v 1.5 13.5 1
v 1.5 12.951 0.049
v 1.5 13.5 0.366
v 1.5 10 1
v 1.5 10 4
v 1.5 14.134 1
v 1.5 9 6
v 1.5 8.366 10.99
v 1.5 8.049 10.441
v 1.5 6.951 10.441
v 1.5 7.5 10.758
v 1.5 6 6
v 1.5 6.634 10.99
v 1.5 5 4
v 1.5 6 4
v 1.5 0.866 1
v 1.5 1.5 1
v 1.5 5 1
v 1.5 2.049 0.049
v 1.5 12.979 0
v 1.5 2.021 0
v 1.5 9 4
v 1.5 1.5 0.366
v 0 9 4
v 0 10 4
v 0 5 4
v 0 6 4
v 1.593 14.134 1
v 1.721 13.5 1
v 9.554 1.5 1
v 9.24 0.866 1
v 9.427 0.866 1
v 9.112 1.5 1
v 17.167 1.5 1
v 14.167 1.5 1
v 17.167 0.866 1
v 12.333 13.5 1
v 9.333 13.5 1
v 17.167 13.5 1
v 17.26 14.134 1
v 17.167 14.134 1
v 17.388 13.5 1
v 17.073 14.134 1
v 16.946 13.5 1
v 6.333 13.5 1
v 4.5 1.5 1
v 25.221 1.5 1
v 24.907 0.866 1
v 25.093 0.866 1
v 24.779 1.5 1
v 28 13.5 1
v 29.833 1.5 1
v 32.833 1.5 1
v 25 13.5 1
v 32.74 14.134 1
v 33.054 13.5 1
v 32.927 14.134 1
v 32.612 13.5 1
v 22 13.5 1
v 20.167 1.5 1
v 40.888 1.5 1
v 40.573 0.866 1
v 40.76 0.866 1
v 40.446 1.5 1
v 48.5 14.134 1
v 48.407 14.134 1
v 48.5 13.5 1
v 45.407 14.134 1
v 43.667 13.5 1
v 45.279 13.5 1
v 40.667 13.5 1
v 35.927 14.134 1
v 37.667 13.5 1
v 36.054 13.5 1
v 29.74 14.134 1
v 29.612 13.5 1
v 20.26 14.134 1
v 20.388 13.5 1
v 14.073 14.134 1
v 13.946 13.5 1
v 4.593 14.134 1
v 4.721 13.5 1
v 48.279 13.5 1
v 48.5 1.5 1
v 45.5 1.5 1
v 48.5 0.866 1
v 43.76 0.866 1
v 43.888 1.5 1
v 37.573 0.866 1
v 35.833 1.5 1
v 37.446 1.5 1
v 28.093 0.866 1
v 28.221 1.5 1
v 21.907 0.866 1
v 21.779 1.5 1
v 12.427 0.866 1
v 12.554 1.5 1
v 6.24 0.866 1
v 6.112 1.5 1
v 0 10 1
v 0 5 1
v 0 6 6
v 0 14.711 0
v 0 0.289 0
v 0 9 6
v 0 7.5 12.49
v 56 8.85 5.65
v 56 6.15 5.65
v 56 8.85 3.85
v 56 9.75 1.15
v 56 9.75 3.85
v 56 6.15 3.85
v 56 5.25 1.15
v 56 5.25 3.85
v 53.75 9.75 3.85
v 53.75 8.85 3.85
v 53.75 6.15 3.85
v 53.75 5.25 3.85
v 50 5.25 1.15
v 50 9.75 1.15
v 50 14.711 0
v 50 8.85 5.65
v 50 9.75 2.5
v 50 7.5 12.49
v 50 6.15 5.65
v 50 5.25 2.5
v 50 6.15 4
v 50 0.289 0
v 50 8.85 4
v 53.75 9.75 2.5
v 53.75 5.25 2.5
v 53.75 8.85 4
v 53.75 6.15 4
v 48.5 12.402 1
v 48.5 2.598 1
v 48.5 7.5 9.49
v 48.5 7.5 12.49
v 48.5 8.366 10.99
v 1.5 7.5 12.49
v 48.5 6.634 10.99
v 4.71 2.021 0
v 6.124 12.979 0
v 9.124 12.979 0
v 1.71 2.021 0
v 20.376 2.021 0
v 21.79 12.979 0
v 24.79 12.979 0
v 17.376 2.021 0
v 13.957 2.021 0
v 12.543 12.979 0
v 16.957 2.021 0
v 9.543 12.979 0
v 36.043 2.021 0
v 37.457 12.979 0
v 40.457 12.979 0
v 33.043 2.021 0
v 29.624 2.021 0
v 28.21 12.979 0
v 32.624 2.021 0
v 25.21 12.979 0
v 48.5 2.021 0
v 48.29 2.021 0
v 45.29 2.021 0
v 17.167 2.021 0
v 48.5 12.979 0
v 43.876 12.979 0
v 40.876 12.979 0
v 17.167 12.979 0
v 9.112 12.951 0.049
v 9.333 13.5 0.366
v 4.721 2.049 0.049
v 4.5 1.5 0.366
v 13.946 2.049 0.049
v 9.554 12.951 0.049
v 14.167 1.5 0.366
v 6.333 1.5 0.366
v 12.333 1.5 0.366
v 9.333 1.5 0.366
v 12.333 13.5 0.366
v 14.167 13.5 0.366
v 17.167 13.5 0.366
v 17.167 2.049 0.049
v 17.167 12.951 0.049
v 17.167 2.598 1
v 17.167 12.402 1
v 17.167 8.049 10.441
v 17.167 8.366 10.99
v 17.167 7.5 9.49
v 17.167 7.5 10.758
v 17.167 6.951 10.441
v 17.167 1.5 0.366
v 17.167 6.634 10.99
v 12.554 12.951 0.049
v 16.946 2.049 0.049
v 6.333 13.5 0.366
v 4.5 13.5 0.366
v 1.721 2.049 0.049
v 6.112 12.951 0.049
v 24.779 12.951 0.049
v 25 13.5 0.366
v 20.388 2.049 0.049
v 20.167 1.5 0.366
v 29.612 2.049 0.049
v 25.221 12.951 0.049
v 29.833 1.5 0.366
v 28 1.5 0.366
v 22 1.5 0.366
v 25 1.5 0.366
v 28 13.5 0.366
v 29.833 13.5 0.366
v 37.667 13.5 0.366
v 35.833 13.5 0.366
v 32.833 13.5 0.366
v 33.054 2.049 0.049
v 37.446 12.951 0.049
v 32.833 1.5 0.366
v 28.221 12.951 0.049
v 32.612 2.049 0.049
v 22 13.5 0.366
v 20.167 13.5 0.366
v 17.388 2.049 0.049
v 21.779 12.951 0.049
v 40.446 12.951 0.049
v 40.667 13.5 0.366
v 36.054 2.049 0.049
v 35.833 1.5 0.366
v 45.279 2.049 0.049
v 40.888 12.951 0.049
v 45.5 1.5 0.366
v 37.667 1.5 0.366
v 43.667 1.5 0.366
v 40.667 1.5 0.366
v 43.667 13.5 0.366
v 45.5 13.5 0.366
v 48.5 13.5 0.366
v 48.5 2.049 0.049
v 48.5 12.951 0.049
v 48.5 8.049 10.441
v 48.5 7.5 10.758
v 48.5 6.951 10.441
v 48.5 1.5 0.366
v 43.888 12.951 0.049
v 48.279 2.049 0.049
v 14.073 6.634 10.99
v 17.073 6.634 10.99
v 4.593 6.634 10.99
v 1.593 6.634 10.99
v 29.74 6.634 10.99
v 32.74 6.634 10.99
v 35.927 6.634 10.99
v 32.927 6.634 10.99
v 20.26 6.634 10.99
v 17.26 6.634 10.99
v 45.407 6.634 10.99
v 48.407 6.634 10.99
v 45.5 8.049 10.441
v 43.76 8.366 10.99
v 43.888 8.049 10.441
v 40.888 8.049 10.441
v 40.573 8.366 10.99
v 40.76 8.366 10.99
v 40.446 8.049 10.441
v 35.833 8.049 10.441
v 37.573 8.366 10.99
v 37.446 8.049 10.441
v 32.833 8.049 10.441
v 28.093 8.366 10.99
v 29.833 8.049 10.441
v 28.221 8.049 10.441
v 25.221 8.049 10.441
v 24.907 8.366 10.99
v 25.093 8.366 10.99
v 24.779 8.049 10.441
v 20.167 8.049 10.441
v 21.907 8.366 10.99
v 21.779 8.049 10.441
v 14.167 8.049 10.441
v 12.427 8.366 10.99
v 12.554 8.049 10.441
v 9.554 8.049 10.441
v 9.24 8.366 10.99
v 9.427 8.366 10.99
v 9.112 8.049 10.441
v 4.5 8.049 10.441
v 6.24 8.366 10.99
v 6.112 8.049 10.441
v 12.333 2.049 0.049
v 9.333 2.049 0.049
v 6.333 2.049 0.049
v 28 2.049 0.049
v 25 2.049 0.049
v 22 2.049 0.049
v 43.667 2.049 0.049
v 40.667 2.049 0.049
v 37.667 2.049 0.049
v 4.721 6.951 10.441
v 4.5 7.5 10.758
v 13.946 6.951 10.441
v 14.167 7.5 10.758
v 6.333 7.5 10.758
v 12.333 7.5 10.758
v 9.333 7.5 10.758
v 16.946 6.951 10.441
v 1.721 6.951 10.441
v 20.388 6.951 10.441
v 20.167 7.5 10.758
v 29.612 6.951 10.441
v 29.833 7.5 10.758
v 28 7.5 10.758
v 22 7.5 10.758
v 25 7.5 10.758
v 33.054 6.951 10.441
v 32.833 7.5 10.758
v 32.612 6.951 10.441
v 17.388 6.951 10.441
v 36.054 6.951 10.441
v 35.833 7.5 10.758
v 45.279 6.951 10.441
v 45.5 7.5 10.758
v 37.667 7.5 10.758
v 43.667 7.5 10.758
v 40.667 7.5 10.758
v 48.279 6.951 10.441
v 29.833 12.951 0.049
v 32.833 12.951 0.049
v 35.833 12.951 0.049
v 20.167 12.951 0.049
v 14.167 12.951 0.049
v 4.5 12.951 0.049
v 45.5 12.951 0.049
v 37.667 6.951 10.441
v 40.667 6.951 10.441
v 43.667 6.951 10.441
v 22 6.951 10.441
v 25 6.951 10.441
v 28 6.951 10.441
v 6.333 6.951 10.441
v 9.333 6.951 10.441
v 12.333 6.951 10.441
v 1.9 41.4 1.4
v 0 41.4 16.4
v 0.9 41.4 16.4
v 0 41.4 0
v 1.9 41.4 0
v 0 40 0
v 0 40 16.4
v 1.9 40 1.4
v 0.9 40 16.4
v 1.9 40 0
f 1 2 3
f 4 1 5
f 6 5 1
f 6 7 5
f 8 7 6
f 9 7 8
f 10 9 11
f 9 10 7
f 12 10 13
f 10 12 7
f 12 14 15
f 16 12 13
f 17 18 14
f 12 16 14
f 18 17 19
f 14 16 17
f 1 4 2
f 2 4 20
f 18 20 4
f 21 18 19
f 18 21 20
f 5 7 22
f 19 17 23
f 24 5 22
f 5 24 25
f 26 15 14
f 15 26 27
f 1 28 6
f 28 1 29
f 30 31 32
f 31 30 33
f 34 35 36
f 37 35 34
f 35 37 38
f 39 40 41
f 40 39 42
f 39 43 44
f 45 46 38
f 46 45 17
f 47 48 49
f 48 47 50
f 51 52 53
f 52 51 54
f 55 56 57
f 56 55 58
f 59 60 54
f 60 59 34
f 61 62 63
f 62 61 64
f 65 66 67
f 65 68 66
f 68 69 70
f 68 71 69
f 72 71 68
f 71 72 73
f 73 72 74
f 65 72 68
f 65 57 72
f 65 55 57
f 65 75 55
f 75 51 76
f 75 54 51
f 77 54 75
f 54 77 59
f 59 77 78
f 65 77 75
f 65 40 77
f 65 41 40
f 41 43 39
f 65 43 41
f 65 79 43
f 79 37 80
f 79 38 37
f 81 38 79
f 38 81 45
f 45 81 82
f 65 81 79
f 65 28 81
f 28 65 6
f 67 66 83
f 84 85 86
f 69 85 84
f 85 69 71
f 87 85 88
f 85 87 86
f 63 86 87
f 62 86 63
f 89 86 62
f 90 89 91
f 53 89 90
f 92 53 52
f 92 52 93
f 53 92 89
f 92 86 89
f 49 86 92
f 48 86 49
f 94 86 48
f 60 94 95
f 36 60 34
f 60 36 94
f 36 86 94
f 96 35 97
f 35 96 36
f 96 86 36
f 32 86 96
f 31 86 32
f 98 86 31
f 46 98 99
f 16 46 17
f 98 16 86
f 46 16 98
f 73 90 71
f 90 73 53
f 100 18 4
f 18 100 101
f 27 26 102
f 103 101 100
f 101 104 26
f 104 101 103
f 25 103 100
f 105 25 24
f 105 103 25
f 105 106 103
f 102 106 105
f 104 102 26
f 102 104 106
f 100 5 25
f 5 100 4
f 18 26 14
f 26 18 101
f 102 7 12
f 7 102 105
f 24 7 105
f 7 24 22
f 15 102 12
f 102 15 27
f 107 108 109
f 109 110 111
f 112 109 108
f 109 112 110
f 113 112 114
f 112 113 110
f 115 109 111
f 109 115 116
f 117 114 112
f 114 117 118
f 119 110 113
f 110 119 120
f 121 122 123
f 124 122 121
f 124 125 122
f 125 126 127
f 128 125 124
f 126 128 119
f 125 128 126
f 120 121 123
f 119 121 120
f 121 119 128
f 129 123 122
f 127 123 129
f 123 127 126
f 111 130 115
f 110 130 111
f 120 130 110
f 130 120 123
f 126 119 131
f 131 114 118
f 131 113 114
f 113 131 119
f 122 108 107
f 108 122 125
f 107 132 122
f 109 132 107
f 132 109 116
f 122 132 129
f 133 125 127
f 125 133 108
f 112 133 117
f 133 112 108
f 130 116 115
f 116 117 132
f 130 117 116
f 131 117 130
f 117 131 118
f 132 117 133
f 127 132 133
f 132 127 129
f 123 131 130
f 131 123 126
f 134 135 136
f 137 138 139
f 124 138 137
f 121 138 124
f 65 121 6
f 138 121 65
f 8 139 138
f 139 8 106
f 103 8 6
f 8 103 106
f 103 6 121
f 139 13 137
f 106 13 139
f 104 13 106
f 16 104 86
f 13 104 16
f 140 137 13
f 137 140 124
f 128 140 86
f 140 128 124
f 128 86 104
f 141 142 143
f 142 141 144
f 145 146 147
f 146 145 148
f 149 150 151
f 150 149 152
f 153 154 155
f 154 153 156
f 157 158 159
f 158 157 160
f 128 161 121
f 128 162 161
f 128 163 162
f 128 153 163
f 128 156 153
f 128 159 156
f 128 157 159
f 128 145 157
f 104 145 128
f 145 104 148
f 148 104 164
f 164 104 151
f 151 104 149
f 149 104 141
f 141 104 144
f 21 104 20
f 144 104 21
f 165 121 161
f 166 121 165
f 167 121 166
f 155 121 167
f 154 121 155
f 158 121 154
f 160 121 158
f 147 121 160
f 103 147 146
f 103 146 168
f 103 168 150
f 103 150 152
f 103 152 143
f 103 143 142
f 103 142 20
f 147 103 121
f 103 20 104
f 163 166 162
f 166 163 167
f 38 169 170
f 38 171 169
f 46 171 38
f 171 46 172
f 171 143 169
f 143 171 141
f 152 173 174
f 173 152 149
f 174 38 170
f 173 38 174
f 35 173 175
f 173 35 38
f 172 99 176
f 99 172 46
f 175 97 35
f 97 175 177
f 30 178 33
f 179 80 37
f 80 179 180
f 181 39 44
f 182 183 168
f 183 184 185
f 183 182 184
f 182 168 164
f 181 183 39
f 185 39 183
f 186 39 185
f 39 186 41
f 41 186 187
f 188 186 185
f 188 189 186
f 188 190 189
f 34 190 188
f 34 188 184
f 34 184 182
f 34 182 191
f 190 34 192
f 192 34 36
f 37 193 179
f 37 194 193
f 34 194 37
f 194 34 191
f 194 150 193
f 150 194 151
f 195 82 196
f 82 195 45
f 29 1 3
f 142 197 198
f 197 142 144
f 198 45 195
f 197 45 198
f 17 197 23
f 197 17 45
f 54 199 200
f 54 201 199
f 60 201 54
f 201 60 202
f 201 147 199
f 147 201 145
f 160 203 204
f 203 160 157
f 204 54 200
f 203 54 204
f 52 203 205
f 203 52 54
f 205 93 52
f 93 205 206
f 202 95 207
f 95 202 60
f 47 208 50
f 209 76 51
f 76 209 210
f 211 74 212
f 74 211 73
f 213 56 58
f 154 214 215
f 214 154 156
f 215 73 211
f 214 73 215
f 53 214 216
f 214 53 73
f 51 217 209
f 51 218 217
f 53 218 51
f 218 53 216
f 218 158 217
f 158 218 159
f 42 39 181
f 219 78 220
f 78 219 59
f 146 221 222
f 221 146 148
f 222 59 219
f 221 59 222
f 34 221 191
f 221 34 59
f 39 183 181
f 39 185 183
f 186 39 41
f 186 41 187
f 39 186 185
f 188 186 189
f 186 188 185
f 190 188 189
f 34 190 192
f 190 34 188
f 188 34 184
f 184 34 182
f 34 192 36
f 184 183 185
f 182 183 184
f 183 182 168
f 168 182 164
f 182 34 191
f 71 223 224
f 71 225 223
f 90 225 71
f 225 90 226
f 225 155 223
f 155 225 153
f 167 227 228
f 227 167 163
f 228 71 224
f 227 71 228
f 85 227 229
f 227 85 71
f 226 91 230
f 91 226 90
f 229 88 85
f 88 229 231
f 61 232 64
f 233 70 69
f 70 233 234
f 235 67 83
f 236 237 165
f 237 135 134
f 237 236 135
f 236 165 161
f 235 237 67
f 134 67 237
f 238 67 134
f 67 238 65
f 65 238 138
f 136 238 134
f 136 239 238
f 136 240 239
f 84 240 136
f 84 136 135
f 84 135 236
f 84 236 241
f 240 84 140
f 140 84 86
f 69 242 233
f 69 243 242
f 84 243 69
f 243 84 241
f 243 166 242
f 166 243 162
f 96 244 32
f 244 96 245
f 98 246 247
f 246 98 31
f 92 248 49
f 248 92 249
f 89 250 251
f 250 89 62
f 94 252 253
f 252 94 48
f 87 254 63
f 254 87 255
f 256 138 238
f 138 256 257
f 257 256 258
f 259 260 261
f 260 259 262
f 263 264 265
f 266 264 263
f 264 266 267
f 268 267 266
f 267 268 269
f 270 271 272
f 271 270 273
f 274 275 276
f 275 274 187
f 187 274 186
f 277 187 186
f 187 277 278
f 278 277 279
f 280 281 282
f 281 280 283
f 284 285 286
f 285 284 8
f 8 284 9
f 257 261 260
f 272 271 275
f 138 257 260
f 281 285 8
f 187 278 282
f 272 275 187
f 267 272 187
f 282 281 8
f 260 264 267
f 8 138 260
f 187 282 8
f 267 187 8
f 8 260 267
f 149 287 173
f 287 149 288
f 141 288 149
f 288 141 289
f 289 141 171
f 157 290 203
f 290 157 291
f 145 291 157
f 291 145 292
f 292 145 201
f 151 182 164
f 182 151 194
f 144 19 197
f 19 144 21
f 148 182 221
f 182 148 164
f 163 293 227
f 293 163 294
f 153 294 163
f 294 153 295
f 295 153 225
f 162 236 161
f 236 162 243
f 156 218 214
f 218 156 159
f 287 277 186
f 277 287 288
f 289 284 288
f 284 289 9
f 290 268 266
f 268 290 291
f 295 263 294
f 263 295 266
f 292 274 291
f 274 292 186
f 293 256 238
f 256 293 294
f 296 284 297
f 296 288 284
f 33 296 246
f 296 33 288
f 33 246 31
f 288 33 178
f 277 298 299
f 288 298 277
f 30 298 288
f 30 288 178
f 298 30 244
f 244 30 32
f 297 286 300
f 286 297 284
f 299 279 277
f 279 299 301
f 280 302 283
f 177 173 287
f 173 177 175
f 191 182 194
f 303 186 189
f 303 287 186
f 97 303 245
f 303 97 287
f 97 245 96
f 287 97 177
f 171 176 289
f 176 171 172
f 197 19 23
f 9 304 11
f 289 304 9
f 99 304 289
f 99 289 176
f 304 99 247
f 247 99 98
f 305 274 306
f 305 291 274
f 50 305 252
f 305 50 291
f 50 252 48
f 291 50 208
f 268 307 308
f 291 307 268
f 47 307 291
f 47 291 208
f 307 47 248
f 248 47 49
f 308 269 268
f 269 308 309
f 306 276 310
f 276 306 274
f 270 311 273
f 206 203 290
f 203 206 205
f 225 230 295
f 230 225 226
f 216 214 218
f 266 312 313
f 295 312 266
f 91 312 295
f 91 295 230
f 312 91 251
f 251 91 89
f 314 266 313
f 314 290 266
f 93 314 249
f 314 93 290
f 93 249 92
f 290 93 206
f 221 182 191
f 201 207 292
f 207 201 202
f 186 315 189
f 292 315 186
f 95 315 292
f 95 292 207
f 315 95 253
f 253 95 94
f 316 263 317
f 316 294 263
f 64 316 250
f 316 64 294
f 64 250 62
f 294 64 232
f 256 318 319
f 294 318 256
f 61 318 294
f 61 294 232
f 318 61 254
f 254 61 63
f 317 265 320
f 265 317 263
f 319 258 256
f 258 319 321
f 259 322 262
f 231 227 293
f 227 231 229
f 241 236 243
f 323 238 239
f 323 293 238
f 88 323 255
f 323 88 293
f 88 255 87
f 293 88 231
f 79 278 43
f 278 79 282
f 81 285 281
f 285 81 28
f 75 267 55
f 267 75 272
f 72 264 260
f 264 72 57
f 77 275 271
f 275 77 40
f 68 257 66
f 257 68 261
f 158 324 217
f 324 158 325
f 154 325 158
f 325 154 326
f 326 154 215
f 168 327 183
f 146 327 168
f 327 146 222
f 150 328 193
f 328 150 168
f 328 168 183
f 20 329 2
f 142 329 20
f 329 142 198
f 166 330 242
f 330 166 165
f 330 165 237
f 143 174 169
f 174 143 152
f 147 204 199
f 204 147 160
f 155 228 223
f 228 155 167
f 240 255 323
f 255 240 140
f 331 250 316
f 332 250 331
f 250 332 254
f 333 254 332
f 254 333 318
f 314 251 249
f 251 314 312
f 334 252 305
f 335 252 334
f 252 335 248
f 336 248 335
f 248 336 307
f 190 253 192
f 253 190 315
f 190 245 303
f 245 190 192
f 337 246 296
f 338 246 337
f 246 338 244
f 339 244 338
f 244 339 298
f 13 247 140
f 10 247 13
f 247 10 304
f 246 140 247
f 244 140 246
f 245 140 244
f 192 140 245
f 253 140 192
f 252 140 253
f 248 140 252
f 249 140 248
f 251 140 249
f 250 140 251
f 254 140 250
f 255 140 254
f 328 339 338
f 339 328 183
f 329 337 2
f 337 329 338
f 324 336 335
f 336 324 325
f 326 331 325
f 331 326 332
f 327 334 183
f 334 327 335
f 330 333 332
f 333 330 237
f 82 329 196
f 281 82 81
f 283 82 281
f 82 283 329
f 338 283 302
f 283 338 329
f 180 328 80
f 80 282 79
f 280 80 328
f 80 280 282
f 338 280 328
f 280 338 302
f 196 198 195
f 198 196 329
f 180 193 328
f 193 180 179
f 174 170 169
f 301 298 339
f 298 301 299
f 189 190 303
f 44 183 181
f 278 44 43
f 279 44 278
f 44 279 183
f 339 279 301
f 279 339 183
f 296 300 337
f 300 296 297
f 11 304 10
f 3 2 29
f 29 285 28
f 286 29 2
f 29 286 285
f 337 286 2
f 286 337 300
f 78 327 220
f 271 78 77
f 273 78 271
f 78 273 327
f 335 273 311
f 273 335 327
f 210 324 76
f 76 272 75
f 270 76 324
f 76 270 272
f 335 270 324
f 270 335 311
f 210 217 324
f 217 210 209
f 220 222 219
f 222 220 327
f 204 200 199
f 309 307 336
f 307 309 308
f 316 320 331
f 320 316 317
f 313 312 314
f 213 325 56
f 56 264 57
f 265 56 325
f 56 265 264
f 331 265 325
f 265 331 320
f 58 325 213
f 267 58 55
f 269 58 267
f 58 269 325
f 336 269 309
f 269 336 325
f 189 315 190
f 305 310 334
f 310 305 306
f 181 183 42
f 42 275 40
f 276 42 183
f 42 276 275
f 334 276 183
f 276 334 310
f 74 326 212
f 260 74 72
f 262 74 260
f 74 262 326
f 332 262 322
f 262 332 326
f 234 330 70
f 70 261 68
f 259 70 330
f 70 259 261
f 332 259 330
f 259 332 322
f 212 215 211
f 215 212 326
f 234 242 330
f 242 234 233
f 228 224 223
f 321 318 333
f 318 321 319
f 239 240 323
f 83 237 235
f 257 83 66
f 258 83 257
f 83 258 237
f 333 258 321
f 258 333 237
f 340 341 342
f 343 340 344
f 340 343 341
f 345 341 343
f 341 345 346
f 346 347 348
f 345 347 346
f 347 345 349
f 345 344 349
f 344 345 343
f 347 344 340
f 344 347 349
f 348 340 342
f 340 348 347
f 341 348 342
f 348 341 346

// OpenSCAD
module triangle(width, height) {
  points = [
    [0, 0],
    [0, height],
    [width, 0]
  ];
  polygon(points);
}

module tri_sep_square(width, height, sep_width) {
  triangle(width, height);
  translate([width + sep_width, height, 0]) {
    rotate(180) {
      triangle(width, height);
    }
  }
}

module repeating_triangles(width, height, sep_width, num_triangles) {
  assert(num_triangles % 2 == 0, "num_triangles must be even!");
  for (i = [1 : 2 : num_triangles]) {
    translate([i * (width + sep_width), 0, 0]) {
      tri_sep_square(width, height, sep_width);
      mirror([1, 0, 0]) {
        tri_sep_square(width, height, sep_width);
      }
    }
  }
}

module tri_beam(width, height, sep_width, num_triangles) {
  width_without_sep = width - (sep_width * num_triangles);
  triangle_width = width_without_sep / num_triangles;
  repeating_triangles(triangle_width, height, sep_width, num_triangles);
}

module truss(width, height, sep_width, num_triangles) {
  strut_thickness = sep_width / 2;
  beam_height = height - strut_thickness * 2;
  beam_width = width - strut_thickness * 2;
  difference() {
    square([beam_width + 2 * strut_thickness, beam_height + 2 * strut_thickness]);
    translate([strut_thickness, strut_thickness, 0]) {
      tri_beam(beam_width, beam_height, sep_width, num_triangles);
    }
  }
}

module truss_3d(width, height, sep_width, num_triangles) {
  linear_extrude(sep_width / 2) {
    truss(width, height, sep_width, num_triangles);
  }
}

num_triangles = 6;

module tri_overrun(width, height, sep) {
  truss_3d(width, height, sep, num_triangles);
  rotate(240, [1, 0, 0]) {
    translate([0, -height, 0]) {
      truss_3d(width, height, sep, num_triangles);
    }
  }
  translate([0, height, 0]) {
    rotate(120, [1, 0, 0]) {
      truss_3d(width, height, sep, num_triangles);
    }
  }
  female_end(height, sep);
  translate([width - sep / 2, 0, 0]) {
    male_end(height, sep);
  }
}

module clipping_cubes(width, height, sep) {
  translate([0, height, 0]) {
    rotate(30, [1, 0, 0]) {
      cube([width, height, height * 2]);
    }
  }
  rotate(-30, [1, 0, 0]) {
    mirror([0, 1, 0]) {
      translate([0, 0, 0]) {
        cube([width, height, height * 2]);
      }
    }
  }
  translate([0, 0, -1]) {
      cube([width, height, sep]);
  }
}

module female_end(height, sep) {
  key_size = height / 3;
  hypot = height;
  a = height / 2;
  c = sqrt(hypot * hypot - a * a);
  difference() {
    cube([sep / 2, height, height]);
    translate([sep / 2 / 2, height / 2, sep]) {
      key(height, sep);
    }
  }
}

module male_end(height, sep) {
  key_size = height / 3;
  hypot = height;
  a = height / 2;
  c = sqrt(hypot * hypot - a * a);
  thickness = sep / 2;
  cube([thickness, height, height]);
  translate([thickness * 3, height / 2, sep]) {
    difference() {
      scale([4, 0.9, 0.9]) {
        key(height, sep);
      }
      translate([-thickness, 0, thickness / 2]) {
        cube([thickness * 3, height, thickness], center = true);
      }
    }
  }
}

module key(height, sep) {
  key_size = height / 3;
  cube([sep / 2, key_size, sep], center = true);
  translate([0, 0, key_size / 2 - sep / 2]) {
    cube([sep / 2, sep, key_size], center = true);
  }
}

module go() {
  difference() {
    tri_overrun(50, 15, 3);
    clipping_cubes(50, 15, 1.5);
  }
}

translate([0, 0, -0.5]) {
  go();
}

// translate([0, 20, -0.5]) {
//   go();
// }

module pin(height, thickness) {
    hull() {
      cube([thickness + 0.5, thickness, thickness]);
      translate([0, 0, height]) {
        cube([thickness - 0.5, thickness, thickness]);
      }
    }
}

translate([0, 40, 0]) {
  pin(15, 1.4);
}

// import("tri-beam.stl");
